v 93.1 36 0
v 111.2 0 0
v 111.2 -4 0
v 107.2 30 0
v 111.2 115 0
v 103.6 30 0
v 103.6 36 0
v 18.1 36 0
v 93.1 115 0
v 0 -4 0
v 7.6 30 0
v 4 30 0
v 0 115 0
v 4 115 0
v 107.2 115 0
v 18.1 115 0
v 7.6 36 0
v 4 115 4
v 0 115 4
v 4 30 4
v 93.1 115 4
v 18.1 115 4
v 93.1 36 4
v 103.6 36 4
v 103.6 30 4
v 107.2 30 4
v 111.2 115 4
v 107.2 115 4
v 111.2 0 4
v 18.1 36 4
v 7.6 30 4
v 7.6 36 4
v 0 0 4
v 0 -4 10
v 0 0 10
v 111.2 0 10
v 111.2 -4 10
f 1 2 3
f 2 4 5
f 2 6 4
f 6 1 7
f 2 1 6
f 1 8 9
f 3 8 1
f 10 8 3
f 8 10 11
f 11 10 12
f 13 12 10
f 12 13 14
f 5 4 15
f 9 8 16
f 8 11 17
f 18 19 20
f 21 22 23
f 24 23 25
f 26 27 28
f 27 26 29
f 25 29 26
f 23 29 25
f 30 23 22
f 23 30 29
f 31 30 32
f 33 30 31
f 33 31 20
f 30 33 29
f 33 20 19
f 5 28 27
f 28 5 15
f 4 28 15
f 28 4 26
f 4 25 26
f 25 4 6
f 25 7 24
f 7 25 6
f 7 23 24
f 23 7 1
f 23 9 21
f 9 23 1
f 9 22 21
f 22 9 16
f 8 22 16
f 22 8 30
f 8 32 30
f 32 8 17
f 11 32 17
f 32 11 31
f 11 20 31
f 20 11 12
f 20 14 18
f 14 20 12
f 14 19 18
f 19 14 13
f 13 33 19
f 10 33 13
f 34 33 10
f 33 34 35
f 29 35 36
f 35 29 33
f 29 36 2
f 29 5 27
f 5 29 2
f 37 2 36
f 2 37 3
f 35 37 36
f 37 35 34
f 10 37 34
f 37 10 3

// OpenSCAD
// The distance between the right side of the left screw and left side of the
// right screw connecting the VESA mount plate and the screen (as seen when
// sitting in front of the screen)
screws_distance = 96;

// The distance between the top sides of the two flaps that presumably have the
// screw holes for the 75x75 mm version of the VESA mount
// This distance is important, because it is the maximum width for something to
// be able to slot between the screws and these flaps in order to go deep into
// the gap between the VESA mount plate and the back of the monitor.
flaps_distance = 75;

// The length of the surface of the flap beneath the screw that needs to be
// accounted for for the main rectangular leg to be narrower by in order to be
// able to slot deep into the gap between the VESA mount plate and the monitor
flap_width = (screws_distance - flaps_distance) / 2;

// The gap between the back of the screen and the flat side of the VESA mount
// plate facing the screen - the thickness of a support leg that fits there
plate_screen_gap = 4;

// The distance between the top point of the VESA mount plate arc and the top
// side of the left and right top screws connecting the plate and the screen
// (as seen when sitting in front of the screen)
tip_screw_distance = 30;

// The distance between the top point of the VESA mount and the top of the flaps
// on the plate that prevent slotting anything below this depth unless it is at
// most as wide as the distance between the flaps.
tip_flap_distance = 36;

// The depth between the top point of the VESA mount plate arc and the possible
// flaps that could collide with a box slotted in between the screen and the
// mount plate between the two top screws
// This is the minimum, I have not measured and fit tested for a maximum yet.
tip_pit_depth = 115;

// The diameter of a single screw used to calculate the gap between two parts
// that sit supported on and by the screw when bridged over their tops
screw_diameter = 3.6;

// The thickness of the VESA mount plate the two rectangular legs sit against
// the sides of
plate_thickness = 2;

// The size of the square columns that sit at the outside of the top left and
// right screws of the VESA mount plate forming a hook together with the main
// rectangle leg and the surface that connects the three legs together to make
// a double hook
square_leg_size = 4;

// The distance from the left side to the right side of the whole leg assembly
// (left leg column, left screw, rectangular leg, right screw, right leg column)
leg_bridge_width = square_leg_size * 2 + screw_diameter * 2 + screws_distance;

// The rectangular leg that slots in between the screen back and the VESA mount
// plate on one axis and the two top screws on the plate on the other axis
linear_extrude(plate_screen_gap) polygon([
  // The origin point
  [0, 0],
  // The widest distance covering the length between the side square legs
  [leg_bridge_width, 0],
  // The depth of the first square leg depth with extra to work as a hook
  [leg_bridge_width, tip_pit_depth],
  // The same depth but shifted to the side of the screw to end the hook side
  [leg_bridge_width - square_leg_size, tip_pit_depth],
  // The first point that makes the bridge line over the screw
  [leg_bridge_width - square_leg_size, tip_screw_distance],
  // The second point of the screw bridge line, shifted by screw width
  [leg_bridge_width - square_leg_size - screw_diameter, tip_screw_distance],
  // The surface that sits on the flap close to the screw over the flap's length
  [leg_bridge_width - square_leg_size - screw_diameter, tip_flap_distance],
  // The other side of the flap top surface that doesn't go deeper than this
  [leg_bridge_width - square_leg_size - screw_diameter - flap_width, tip_flap_distance],
  // The first point of the main rectangular leg that slots between the screws and flaps
  [leg_bridge_width - square_leg_size - screw_diameter - flap_width, tip_pit_depth],
  // The second point of the main rectangular leg that goes deep into the plate/screen gap
  [square_leg_size + screw_diameter + flap_width, tip_pit_depth],
  // The first point of the top of the other flap that the rectangular leg is narrower by
  [square_leg_size + screw_diameter + flap_width, tip_flap_distance],
  // The second point of the top surface of the second flap next to the main leg
  [square_leg_size + screw_diameter, tip_flap_distance],
  // The first point over the bridge surface that makes the hook around the second screw
  [square_leg_size + screw_diameter, tip_screw_distance],
  // The second point over the second screw bridge layer, shifted by the screw diameter
  [square_leg_size, tip_screw_distance],
  // The depth of the other columnal square leg that makes a hook around the screw
  [square_leg_size, tip_pit_depth],
  // The other point of the square columnal leg brinding the polygon back to origin
  [0, tip_pit_depth],
]);

// The top surface that bridges the gap between the rectangular legs that hug
// the flat sides of the VESA mount plate
translate([0, -plate_screen_gap, 0]) cube([leg_bridge_width, plate_screen_gap, plate_screen_gap + 2 + plate_screen_gap]);

// The other rectangular leg that hugs the flat side of the VESA mount plate
// directed towards the wall as opposed to towards the back of the monitor
//translate([(leg_bridge_width - 74) / 2, 0, plate_screen_gap + plate_thickness]) cube([74, plate_screen_gap * 2, plate_screen_gap]);

// TODO: Design the other plate with 74 mm of width between the flaps on the
// other side of the VESA mount plate
